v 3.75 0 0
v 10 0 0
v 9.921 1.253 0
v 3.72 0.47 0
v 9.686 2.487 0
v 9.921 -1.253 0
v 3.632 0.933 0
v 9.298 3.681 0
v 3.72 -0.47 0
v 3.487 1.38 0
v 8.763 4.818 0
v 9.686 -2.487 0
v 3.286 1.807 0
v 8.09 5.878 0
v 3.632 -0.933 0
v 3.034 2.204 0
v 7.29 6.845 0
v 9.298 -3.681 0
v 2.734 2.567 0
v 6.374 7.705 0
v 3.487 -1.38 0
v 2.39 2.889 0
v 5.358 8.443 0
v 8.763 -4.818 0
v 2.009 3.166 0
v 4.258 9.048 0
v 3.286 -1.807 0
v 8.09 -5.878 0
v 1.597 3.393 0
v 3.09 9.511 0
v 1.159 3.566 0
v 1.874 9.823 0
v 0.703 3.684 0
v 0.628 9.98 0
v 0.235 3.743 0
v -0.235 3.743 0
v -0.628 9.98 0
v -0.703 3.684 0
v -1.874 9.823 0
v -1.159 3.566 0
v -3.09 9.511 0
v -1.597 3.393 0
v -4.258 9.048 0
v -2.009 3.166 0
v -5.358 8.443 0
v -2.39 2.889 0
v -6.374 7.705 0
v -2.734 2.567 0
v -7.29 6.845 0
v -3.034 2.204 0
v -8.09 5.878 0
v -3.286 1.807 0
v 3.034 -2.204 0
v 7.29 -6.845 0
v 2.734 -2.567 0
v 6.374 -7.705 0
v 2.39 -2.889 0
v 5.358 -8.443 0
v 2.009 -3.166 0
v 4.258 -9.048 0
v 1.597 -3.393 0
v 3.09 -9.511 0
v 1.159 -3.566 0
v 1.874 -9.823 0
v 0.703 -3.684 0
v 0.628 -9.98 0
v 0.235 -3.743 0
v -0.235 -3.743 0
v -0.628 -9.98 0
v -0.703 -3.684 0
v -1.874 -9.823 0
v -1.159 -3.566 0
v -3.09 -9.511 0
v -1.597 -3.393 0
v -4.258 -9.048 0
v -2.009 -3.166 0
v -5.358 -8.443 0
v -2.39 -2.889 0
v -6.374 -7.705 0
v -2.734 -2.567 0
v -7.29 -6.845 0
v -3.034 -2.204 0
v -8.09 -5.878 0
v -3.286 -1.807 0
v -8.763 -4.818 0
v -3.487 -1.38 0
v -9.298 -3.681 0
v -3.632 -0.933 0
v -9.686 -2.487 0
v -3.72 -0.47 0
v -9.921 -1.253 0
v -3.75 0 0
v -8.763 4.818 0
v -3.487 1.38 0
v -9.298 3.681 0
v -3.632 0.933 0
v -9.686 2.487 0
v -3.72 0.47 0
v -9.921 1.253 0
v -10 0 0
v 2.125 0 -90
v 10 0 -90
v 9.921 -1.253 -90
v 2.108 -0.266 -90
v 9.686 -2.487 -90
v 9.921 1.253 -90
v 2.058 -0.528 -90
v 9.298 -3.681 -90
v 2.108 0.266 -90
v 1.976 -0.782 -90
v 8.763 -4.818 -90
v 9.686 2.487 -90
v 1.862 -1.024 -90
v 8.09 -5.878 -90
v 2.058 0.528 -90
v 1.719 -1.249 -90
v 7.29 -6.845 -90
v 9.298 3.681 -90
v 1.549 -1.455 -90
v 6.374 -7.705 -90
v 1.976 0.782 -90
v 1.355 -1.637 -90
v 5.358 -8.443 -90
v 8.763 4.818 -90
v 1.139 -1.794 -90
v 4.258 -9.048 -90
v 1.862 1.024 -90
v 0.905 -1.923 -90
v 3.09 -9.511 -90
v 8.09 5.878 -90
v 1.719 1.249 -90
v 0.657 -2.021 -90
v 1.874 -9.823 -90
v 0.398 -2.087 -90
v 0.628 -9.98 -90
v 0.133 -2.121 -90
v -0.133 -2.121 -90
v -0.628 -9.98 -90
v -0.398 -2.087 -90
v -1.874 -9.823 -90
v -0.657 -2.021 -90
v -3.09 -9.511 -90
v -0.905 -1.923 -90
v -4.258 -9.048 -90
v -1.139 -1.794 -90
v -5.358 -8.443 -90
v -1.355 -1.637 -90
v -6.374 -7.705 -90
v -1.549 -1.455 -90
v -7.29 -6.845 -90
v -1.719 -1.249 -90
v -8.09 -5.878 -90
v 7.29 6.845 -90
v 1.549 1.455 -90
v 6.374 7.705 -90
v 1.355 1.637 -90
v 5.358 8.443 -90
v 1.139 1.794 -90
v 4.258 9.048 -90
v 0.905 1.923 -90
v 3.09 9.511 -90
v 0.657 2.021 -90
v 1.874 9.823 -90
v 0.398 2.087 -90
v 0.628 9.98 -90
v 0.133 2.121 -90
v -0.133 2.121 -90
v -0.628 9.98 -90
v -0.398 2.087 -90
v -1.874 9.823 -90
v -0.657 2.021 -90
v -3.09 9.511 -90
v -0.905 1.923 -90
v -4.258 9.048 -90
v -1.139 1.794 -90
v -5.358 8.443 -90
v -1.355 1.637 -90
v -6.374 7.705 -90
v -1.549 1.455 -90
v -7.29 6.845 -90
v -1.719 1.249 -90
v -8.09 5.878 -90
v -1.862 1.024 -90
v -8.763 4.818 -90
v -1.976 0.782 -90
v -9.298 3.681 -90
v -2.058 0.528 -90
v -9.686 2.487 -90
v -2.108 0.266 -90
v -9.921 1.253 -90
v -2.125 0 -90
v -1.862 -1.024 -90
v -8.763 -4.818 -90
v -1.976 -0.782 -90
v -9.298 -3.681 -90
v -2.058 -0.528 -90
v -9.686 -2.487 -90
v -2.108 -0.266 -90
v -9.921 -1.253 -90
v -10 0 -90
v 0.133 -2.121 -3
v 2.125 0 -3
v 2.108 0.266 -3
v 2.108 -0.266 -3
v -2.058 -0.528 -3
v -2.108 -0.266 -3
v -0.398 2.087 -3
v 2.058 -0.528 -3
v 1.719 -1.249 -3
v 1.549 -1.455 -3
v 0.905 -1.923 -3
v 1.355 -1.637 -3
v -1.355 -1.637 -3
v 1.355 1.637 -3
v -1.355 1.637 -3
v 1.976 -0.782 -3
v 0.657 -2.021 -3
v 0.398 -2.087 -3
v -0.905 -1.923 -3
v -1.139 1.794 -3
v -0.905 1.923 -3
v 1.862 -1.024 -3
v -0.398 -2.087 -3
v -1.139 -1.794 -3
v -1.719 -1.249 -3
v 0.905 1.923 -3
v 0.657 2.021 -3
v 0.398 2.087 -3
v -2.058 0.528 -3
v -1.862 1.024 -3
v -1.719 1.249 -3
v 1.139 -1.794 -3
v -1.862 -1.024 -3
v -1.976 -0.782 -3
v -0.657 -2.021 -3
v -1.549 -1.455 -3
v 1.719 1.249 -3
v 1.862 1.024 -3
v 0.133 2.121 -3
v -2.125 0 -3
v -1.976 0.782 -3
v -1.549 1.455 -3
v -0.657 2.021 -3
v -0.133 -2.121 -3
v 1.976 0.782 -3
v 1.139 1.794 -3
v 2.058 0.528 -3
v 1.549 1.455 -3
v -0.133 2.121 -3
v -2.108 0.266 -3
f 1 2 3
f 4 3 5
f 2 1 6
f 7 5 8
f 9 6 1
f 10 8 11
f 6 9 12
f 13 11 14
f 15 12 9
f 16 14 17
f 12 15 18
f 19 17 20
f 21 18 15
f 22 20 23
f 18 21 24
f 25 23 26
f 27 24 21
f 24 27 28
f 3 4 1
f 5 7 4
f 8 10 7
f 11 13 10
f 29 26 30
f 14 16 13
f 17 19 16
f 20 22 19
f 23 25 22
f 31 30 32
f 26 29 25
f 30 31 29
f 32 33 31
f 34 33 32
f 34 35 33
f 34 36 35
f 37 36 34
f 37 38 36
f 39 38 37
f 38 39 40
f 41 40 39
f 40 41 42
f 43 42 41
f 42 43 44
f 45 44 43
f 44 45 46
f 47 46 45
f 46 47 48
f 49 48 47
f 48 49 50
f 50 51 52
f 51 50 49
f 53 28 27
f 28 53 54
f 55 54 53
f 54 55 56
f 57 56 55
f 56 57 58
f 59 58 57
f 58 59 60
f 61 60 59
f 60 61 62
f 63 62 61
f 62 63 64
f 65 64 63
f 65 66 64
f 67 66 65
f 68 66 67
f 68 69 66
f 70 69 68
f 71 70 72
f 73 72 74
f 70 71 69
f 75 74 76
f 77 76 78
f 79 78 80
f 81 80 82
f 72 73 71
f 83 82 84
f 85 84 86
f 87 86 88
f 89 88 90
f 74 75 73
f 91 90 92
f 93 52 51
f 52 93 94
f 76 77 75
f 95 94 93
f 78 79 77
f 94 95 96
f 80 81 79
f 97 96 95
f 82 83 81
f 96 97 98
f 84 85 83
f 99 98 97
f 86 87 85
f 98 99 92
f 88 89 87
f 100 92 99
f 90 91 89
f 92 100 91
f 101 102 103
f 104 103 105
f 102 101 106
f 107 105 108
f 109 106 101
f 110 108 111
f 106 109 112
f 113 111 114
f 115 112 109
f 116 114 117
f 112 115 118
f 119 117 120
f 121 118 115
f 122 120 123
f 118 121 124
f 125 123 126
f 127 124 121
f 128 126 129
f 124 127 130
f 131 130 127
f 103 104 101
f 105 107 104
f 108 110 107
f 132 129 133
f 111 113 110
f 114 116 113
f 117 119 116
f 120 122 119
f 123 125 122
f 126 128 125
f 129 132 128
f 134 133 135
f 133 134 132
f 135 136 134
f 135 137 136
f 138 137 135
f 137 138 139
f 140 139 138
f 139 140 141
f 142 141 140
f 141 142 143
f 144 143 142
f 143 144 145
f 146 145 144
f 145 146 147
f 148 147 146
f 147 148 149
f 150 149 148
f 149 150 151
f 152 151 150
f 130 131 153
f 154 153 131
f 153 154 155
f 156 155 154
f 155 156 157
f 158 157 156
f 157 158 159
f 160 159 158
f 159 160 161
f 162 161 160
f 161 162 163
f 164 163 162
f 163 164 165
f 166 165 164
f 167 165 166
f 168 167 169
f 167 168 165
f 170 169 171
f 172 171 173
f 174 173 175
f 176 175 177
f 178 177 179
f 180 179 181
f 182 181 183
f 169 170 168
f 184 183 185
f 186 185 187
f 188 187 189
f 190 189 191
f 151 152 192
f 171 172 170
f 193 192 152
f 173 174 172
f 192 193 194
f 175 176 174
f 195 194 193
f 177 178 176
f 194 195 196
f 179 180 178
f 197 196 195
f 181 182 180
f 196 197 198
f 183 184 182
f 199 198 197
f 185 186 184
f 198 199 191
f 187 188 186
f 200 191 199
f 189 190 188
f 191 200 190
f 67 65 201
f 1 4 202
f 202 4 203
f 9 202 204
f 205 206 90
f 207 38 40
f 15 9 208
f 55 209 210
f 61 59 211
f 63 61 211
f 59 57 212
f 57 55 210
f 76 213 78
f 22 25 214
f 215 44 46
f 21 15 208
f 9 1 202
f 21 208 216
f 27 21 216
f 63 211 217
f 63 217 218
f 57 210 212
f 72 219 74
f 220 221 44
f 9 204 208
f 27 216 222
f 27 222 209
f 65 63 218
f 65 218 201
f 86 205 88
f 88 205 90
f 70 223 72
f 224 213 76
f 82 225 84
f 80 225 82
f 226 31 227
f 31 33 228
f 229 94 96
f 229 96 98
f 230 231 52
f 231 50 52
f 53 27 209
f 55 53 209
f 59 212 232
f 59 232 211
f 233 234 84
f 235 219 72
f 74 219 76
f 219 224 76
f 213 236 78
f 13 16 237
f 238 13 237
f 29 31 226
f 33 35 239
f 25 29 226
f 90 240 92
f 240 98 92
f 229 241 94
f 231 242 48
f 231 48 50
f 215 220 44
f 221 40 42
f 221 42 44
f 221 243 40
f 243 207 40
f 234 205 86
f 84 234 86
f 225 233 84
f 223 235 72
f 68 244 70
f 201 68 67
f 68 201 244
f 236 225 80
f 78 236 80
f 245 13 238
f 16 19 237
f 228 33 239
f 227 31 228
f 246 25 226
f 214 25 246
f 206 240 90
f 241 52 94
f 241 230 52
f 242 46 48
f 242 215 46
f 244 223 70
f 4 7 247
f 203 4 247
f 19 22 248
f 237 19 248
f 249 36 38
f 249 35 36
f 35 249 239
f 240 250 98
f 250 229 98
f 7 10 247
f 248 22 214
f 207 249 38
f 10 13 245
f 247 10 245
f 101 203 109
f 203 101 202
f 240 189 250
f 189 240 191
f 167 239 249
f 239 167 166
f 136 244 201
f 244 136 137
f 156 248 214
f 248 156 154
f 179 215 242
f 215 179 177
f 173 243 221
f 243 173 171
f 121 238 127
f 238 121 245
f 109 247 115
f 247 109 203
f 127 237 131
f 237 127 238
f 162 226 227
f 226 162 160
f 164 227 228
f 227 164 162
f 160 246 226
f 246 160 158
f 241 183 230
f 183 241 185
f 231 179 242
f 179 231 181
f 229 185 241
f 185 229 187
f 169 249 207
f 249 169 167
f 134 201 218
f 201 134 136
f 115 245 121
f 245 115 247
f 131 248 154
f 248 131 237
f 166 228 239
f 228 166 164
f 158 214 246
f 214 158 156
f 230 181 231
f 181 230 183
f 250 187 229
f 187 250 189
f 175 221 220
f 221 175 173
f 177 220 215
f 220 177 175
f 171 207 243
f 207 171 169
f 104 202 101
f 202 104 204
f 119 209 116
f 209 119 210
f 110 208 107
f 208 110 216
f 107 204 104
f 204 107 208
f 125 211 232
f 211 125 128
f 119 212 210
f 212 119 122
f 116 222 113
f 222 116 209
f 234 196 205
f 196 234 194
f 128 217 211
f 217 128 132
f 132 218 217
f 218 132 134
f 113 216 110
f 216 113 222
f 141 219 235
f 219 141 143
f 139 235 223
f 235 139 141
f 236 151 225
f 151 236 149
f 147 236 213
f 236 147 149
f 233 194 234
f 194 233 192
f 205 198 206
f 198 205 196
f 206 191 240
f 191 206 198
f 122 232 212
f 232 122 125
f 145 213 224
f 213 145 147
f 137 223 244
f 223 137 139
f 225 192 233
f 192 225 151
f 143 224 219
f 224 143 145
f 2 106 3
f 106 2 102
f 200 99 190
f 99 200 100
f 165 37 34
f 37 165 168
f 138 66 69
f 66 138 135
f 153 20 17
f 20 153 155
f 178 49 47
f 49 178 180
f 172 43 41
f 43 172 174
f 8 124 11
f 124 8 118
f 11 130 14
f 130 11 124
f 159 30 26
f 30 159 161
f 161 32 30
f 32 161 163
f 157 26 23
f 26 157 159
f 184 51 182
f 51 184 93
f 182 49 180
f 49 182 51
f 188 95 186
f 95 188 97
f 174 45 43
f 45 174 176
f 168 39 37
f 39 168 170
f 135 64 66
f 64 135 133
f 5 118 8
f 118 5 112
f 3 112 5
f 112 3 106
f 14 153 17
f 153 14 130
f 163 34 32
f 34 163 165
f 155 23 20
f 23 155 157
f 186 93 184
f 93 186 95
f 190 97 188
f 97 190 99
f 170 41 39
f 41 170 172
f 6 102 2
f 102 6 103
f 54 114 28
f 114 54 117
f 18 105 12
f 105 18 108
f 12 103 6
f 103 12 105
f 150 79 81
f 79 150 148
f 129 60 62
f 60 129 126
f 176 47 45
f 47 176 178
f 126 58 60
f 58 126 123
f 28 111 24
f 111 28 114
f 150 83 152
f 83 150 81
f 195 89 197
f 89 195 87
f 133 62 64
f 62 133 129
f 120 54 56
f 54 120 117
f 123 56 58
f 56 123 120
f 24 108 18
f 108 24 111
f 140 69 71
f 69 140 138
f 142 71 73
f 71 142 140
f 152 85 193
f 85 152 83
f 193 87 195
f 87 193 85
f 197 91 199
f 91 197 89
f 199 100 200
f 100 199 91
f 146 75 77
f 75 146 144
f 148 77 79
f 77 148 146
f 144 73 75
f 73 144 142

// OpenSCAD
$fn = 50;


difference() {
	union() {
		translate(v = [0, 0, -90.0000000000]) {
			cylinder(h = 90, r = 10.0000000000);
		}
	}
	union() {
		translate(v = [0, 0, 0]) {
			rotate(a = [0, 0, 0]) {
				difference() {
					union() {
						#translate(v = [0, 0, -90.0000000000]) {
							cylinder(h = 90, r = 2.0000000000);
						}
						#translate(v = [0, 0, -3]) {
							cylinder(h = 3, r1 = 2.1250000000, r2 = 3.7500000000);
						}
						#translate(v = [0, 0, -90.0000000000]) {
							cylinder(h = 90, r = 2.1250000000);
						}
						#translate(v = [0, 0, -90.0000000000]) {
							cylinder(h = 90, r = 2.0000000000);
						}
					}
					union();
				}
			}
		}
	}
}
